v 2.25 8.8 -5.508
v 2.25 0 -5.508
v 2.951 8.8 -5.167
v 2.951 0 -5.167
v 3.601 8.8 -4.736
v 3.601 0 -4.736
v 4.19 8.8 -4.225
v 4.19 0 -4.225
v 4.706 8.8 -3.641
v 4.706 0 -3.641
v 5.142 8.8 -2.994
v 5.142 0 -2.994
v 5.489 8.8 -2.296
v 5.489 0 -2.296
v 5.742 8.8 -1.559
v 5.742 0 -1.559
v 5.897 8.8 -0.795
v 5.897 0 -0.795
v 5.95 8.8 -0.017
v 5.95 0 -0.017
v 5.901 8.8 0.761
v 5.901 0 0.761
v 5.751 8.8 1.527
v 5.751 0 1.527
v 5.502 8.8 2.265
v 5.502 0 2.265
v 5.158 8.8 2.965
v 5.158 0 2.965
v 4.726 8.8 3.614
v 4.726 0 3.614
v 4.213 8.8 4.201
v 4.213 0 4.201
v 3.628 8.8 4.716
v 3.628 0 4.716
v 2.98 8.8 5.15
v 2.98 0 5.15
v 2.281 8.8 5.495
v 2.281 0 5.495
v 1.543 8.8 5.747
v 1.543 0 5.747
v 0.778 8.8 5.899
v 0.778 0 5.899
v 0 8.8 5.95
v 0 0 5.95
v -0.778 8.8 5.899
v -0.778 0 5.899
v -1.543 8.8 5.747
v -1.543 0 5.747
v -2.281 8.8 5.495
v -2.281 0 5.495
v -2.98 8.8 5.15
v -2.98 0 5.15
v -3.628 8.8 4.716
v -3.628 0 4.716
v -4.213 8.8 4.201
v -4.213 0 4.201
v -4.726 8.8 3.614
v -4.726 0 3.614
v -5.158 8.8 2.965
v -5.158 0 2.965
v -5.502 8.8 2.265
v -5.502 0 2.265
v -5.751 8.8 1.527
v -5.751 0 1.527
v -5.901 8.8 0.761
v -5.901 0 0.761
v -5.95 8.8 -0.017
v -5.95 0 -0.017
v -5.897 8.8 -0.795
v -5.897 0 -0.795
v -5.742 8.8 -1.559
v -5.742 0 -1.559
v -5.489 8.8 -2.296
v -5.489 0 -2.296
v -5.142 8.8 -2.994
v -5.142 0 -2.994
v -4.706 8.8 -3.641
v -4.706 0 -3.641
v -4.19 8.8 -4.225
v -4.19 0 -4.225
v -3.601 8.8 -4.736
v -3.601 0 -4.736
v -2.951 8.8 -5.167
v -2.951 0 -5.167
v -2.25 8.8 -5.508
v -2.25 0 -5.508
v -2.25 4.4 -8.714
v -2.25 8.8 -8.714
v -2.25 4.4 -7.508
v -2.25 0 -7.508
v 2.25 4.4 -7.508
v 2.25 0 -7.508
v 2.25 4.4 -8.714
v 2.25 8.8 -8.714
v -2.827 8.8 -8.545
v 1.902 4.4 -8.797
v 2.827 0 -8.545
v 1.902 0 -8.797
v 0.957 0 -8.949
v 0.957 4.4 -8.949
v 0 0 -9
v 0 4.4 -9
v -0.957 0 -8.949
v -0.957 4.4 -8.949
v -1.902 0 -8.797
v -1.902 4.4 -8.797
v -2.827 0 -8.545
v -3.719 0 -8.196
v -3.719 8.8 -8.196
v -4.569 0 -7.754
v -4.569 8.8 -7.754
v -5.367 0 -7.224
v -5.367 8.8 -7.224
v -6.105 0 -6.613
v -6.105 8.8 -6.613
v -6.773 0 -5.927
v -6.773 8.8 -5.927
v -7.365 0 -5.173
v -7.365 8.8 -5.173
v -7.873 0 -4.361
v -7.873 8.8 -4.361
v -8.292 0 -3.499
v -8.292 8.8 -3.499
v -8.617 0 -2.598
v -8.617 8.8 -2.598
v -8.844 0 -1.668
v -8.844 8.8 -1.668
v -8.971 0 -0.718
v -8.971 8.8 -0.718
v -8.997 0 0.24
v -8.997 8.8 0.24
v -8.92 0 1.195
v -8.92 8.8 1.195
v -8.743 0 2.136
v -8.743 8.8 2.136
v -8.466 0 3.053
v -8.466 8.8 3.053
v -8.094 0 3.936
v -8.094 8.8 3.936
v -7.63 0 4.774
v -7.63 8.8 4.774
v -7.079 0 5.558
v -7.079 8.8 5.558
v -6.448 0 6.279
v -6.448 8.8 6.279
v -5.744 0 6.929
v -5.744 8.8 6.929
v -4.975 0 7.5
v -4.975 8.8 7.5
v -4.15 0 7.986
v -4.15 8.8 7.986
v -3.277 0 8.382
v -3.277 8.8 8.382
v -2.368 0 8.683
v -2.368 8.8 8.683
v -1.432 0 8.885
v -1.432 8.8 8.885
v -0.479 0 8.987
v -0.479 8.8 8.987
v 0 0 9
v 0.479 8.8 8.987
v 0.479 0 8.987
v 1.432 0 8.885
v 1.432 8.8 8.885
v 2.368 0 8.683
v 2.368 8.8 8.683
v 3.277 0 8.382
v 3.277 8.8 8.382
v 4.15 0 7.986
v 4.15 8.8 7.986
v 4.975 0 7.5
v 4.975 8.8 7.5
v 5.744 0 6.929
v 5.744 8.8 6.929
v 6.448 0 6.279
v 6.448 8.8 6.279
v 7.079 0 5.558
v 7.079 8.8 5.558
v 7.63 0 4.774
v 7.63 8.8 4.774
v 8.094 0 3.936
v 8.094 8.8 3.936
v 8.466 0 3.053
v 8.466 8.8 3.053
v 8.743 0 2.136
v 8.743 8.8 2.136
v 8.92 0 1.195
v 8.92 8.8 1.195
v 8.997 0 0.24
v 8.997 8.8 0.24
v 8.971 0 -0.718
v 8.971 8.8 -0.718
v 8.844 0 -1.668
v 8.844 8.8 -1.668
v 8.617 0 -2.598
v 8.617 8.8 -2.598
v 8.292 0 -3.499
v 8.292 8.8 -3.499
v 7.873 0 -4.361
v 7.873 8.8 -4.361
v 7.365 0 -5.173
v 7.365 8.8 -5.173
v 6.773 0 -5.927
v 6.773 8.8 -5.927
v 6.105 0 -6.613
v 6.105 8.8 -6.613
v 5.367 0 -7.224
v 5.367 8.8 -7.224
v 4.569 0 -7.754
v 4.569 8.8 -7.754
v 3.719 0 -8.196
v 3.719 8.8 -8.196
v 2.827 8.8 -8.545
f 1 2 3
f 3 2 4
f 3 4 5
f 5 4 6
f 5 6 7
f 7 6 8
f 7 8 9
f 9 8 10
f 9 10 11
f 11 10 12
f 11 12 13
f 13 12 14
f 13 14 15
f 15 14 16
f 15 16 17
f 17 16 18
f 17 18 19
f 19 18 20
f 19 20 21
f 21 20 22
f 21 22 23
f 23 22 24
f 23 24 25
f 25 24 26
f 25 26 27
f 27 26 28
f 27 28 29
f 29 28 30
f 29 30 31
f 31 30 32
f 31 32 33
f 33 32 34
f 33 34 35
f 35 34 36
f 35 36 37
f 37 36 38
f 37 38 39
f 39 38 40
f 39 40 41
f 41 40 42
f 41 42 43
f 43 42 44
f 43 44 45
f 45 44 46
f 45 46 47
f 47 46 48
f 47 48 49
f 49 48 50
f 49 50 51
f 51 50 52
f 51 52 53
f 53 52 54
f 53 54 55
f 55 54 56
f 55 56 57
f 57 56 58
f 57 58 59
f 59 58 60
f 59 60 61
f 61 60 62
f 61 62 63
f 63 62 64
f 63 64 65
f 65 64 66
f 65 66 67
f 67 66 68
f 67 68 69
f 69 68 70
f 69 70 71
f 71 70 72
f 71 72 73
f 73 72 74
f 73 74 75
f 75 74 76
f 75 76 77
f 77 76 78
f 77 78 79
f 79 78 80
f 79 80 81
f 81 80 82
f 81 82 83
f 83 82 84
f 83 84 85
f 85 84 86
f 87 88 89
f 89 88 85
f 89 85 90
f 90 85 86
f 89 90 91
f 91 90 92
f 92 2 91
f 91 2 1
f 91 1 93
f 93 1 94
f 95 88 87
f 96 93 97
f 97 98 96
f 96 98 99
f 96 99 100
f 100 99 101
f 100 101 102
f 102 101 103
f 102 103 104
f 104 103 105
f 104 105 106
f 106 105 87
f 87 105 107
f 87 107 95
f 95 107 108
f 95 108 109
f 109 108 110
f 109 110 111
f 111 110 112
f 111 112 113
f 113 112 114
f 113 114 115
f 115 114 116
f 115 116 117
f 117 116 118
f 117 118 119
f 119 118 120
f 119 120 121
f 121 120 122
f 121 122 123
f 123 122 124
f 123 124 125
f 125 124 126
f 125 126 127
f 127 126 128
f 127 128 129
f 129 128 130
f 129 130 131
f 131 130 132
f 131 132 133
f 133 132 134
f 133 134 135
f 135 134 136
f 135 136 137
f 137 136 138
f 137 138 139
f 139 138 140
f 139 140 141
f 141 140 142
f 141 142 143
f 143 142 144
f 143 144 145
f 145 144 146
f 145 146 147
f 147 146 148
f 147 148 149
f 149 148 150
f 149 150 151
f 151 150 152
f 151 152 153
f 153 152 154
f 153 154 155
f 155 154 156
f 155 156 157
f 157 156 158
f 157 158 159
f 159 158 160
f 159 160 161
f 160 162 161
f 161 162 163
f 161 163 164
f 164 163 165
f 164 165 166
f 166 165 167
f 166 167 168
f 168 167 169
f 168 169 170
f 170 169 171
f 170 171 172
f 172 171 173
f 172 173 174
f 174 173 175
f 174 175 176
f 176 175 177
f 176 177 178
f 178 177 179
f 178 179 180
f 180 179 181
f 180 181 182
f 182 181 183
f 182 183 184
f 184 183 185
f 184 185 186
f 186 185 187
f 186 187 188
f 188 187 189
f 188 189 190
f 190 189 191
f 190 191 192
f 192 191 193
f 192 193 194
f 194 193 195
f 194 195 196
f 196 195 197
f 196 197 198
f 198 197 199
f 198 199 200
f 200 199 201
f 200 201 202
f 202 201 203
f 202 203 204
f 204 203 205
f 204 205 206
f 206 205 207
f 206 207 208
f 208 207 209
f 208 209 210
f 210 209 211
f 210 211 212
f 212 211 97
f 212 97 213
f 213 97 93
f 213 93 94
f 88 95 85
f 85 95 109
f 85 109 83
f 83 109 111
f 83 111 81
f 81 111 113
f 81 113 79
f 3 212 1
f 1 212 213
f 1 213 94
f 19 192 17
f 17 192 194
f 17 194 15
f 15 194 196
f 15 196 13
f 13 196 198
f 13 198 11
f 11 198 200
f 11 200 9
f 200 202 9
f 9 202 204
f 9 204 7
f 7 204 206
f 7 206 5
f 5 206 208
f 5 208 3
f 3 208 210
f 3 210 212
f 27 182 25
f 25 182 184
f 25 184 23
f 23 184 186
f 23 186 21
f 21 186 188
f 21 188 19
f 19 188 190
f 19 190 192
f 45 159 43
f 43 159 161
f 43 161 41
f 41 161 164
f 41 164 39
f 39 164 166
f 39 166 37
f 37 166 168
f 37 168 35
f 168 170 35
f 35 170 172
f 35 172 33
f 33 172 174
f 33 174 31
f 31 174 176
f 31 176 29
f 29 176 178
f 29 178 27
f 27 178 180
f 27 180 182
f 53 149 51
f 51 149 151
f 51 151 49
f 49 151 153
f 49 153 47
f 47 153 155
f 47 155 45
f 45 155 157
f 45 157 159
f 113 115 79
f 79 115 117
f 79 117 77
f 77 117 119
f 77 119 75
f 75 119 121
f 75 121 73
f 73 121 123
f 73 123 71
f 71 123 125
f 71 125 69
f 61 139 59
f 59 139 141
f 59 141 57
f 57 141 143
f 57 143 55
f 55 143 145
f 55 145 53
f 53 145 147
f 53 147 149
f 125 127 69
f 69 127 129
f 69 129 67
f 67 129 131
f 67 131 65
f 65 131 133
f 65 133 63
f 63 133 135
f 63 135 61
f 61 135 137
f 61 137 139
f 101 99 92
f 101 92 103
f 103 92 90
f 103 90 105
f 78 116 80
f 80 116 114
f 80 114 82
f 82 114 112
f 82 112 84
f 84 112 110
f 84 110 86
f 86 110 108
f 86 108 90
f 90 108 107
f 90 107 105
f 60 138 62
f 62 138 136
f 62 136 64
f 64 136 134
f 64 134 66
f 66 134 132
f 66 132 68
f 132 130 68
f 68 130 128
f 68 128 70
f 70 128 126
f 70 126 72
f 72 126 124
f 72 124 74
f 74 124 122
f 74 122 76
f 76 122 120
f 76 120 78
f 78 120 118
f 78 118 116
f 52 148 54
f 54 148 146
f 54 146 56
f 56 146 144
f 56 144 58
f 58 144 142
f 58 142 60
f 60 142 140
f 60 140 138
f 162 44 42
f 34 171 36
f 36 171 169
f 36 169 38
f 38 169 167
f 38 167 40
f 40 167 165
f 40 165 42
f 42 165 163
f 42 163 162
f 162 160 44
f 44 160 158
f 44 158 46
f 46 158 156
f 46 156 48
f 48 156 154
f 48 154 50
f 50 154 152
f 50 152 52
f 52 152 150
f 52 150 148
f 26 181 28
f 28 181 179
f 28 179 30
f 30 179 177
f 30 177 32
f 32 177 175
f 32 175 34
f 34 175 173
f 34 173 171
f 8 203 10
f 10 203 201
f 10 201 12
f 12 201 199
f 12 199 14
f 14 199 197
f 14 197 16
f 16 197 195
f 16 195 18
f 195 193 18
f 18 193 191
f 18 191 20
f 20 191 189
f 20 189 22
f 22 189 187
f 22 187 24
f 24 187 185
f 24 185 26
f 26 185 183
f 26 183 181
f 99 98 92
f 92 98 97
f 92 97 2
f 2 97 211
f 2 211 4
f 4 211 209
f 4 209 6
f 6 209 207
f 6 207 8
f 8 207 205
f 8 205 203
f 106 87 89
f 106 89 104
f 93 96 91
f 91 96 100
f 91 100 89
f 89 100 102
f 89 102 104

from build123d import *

# Parameters (mm, degrees)
SKETCH1_R           = 9
BOSS_EXTRUDE1_DEPTH = 8.8
SKETCH2_W           = 4.5
SKETCH2_H           = 4.4
CUT_EXTRUDE1_DEPTH  = 10


with BuildPart() as part:
    # Sketch1 → Boss-Extrude1 (new body)
    with BuildSketch(Plane(origin=(0, 0, 0), x_dir=(1, 0, 0), z_dir=(0, 1, 0))):
        Circle(SKETCH1_R)
        with BuildLine():
            ThreePointArc((5.95, 0), (-3.317755265, -4.939129478), (-2.25, 5.508175742))
            Line((-2.25, 5.508175742), (-2.25, 7.508175742))
            Line((-2.25, 7.508175742), (2.25, 7.508175742))
            Line((2.25, 7.508175742), (2.25, 5.508175742))
            ThreePointArc((2.25, 5.508175742), (4.939129478, 3.317755265), (5.95, 0))
        make_face(mode=Mode.SUBTRACT)
    extrude(amount=BOSS_EXTRUDE1_DEPTH)

    # Sketch2 → Cut-Extrude1 (cut, through all)
    with BuildSketch(Plane.XY):
        with Locations((0, 6.6)):
            Rectangle(SKETCH2_W, SKETCH2_H)
    extrude(amount=-CUT_EXTRUDE1_DEPTH, mode=Mode.SUBTRACT)


solid = part.part
